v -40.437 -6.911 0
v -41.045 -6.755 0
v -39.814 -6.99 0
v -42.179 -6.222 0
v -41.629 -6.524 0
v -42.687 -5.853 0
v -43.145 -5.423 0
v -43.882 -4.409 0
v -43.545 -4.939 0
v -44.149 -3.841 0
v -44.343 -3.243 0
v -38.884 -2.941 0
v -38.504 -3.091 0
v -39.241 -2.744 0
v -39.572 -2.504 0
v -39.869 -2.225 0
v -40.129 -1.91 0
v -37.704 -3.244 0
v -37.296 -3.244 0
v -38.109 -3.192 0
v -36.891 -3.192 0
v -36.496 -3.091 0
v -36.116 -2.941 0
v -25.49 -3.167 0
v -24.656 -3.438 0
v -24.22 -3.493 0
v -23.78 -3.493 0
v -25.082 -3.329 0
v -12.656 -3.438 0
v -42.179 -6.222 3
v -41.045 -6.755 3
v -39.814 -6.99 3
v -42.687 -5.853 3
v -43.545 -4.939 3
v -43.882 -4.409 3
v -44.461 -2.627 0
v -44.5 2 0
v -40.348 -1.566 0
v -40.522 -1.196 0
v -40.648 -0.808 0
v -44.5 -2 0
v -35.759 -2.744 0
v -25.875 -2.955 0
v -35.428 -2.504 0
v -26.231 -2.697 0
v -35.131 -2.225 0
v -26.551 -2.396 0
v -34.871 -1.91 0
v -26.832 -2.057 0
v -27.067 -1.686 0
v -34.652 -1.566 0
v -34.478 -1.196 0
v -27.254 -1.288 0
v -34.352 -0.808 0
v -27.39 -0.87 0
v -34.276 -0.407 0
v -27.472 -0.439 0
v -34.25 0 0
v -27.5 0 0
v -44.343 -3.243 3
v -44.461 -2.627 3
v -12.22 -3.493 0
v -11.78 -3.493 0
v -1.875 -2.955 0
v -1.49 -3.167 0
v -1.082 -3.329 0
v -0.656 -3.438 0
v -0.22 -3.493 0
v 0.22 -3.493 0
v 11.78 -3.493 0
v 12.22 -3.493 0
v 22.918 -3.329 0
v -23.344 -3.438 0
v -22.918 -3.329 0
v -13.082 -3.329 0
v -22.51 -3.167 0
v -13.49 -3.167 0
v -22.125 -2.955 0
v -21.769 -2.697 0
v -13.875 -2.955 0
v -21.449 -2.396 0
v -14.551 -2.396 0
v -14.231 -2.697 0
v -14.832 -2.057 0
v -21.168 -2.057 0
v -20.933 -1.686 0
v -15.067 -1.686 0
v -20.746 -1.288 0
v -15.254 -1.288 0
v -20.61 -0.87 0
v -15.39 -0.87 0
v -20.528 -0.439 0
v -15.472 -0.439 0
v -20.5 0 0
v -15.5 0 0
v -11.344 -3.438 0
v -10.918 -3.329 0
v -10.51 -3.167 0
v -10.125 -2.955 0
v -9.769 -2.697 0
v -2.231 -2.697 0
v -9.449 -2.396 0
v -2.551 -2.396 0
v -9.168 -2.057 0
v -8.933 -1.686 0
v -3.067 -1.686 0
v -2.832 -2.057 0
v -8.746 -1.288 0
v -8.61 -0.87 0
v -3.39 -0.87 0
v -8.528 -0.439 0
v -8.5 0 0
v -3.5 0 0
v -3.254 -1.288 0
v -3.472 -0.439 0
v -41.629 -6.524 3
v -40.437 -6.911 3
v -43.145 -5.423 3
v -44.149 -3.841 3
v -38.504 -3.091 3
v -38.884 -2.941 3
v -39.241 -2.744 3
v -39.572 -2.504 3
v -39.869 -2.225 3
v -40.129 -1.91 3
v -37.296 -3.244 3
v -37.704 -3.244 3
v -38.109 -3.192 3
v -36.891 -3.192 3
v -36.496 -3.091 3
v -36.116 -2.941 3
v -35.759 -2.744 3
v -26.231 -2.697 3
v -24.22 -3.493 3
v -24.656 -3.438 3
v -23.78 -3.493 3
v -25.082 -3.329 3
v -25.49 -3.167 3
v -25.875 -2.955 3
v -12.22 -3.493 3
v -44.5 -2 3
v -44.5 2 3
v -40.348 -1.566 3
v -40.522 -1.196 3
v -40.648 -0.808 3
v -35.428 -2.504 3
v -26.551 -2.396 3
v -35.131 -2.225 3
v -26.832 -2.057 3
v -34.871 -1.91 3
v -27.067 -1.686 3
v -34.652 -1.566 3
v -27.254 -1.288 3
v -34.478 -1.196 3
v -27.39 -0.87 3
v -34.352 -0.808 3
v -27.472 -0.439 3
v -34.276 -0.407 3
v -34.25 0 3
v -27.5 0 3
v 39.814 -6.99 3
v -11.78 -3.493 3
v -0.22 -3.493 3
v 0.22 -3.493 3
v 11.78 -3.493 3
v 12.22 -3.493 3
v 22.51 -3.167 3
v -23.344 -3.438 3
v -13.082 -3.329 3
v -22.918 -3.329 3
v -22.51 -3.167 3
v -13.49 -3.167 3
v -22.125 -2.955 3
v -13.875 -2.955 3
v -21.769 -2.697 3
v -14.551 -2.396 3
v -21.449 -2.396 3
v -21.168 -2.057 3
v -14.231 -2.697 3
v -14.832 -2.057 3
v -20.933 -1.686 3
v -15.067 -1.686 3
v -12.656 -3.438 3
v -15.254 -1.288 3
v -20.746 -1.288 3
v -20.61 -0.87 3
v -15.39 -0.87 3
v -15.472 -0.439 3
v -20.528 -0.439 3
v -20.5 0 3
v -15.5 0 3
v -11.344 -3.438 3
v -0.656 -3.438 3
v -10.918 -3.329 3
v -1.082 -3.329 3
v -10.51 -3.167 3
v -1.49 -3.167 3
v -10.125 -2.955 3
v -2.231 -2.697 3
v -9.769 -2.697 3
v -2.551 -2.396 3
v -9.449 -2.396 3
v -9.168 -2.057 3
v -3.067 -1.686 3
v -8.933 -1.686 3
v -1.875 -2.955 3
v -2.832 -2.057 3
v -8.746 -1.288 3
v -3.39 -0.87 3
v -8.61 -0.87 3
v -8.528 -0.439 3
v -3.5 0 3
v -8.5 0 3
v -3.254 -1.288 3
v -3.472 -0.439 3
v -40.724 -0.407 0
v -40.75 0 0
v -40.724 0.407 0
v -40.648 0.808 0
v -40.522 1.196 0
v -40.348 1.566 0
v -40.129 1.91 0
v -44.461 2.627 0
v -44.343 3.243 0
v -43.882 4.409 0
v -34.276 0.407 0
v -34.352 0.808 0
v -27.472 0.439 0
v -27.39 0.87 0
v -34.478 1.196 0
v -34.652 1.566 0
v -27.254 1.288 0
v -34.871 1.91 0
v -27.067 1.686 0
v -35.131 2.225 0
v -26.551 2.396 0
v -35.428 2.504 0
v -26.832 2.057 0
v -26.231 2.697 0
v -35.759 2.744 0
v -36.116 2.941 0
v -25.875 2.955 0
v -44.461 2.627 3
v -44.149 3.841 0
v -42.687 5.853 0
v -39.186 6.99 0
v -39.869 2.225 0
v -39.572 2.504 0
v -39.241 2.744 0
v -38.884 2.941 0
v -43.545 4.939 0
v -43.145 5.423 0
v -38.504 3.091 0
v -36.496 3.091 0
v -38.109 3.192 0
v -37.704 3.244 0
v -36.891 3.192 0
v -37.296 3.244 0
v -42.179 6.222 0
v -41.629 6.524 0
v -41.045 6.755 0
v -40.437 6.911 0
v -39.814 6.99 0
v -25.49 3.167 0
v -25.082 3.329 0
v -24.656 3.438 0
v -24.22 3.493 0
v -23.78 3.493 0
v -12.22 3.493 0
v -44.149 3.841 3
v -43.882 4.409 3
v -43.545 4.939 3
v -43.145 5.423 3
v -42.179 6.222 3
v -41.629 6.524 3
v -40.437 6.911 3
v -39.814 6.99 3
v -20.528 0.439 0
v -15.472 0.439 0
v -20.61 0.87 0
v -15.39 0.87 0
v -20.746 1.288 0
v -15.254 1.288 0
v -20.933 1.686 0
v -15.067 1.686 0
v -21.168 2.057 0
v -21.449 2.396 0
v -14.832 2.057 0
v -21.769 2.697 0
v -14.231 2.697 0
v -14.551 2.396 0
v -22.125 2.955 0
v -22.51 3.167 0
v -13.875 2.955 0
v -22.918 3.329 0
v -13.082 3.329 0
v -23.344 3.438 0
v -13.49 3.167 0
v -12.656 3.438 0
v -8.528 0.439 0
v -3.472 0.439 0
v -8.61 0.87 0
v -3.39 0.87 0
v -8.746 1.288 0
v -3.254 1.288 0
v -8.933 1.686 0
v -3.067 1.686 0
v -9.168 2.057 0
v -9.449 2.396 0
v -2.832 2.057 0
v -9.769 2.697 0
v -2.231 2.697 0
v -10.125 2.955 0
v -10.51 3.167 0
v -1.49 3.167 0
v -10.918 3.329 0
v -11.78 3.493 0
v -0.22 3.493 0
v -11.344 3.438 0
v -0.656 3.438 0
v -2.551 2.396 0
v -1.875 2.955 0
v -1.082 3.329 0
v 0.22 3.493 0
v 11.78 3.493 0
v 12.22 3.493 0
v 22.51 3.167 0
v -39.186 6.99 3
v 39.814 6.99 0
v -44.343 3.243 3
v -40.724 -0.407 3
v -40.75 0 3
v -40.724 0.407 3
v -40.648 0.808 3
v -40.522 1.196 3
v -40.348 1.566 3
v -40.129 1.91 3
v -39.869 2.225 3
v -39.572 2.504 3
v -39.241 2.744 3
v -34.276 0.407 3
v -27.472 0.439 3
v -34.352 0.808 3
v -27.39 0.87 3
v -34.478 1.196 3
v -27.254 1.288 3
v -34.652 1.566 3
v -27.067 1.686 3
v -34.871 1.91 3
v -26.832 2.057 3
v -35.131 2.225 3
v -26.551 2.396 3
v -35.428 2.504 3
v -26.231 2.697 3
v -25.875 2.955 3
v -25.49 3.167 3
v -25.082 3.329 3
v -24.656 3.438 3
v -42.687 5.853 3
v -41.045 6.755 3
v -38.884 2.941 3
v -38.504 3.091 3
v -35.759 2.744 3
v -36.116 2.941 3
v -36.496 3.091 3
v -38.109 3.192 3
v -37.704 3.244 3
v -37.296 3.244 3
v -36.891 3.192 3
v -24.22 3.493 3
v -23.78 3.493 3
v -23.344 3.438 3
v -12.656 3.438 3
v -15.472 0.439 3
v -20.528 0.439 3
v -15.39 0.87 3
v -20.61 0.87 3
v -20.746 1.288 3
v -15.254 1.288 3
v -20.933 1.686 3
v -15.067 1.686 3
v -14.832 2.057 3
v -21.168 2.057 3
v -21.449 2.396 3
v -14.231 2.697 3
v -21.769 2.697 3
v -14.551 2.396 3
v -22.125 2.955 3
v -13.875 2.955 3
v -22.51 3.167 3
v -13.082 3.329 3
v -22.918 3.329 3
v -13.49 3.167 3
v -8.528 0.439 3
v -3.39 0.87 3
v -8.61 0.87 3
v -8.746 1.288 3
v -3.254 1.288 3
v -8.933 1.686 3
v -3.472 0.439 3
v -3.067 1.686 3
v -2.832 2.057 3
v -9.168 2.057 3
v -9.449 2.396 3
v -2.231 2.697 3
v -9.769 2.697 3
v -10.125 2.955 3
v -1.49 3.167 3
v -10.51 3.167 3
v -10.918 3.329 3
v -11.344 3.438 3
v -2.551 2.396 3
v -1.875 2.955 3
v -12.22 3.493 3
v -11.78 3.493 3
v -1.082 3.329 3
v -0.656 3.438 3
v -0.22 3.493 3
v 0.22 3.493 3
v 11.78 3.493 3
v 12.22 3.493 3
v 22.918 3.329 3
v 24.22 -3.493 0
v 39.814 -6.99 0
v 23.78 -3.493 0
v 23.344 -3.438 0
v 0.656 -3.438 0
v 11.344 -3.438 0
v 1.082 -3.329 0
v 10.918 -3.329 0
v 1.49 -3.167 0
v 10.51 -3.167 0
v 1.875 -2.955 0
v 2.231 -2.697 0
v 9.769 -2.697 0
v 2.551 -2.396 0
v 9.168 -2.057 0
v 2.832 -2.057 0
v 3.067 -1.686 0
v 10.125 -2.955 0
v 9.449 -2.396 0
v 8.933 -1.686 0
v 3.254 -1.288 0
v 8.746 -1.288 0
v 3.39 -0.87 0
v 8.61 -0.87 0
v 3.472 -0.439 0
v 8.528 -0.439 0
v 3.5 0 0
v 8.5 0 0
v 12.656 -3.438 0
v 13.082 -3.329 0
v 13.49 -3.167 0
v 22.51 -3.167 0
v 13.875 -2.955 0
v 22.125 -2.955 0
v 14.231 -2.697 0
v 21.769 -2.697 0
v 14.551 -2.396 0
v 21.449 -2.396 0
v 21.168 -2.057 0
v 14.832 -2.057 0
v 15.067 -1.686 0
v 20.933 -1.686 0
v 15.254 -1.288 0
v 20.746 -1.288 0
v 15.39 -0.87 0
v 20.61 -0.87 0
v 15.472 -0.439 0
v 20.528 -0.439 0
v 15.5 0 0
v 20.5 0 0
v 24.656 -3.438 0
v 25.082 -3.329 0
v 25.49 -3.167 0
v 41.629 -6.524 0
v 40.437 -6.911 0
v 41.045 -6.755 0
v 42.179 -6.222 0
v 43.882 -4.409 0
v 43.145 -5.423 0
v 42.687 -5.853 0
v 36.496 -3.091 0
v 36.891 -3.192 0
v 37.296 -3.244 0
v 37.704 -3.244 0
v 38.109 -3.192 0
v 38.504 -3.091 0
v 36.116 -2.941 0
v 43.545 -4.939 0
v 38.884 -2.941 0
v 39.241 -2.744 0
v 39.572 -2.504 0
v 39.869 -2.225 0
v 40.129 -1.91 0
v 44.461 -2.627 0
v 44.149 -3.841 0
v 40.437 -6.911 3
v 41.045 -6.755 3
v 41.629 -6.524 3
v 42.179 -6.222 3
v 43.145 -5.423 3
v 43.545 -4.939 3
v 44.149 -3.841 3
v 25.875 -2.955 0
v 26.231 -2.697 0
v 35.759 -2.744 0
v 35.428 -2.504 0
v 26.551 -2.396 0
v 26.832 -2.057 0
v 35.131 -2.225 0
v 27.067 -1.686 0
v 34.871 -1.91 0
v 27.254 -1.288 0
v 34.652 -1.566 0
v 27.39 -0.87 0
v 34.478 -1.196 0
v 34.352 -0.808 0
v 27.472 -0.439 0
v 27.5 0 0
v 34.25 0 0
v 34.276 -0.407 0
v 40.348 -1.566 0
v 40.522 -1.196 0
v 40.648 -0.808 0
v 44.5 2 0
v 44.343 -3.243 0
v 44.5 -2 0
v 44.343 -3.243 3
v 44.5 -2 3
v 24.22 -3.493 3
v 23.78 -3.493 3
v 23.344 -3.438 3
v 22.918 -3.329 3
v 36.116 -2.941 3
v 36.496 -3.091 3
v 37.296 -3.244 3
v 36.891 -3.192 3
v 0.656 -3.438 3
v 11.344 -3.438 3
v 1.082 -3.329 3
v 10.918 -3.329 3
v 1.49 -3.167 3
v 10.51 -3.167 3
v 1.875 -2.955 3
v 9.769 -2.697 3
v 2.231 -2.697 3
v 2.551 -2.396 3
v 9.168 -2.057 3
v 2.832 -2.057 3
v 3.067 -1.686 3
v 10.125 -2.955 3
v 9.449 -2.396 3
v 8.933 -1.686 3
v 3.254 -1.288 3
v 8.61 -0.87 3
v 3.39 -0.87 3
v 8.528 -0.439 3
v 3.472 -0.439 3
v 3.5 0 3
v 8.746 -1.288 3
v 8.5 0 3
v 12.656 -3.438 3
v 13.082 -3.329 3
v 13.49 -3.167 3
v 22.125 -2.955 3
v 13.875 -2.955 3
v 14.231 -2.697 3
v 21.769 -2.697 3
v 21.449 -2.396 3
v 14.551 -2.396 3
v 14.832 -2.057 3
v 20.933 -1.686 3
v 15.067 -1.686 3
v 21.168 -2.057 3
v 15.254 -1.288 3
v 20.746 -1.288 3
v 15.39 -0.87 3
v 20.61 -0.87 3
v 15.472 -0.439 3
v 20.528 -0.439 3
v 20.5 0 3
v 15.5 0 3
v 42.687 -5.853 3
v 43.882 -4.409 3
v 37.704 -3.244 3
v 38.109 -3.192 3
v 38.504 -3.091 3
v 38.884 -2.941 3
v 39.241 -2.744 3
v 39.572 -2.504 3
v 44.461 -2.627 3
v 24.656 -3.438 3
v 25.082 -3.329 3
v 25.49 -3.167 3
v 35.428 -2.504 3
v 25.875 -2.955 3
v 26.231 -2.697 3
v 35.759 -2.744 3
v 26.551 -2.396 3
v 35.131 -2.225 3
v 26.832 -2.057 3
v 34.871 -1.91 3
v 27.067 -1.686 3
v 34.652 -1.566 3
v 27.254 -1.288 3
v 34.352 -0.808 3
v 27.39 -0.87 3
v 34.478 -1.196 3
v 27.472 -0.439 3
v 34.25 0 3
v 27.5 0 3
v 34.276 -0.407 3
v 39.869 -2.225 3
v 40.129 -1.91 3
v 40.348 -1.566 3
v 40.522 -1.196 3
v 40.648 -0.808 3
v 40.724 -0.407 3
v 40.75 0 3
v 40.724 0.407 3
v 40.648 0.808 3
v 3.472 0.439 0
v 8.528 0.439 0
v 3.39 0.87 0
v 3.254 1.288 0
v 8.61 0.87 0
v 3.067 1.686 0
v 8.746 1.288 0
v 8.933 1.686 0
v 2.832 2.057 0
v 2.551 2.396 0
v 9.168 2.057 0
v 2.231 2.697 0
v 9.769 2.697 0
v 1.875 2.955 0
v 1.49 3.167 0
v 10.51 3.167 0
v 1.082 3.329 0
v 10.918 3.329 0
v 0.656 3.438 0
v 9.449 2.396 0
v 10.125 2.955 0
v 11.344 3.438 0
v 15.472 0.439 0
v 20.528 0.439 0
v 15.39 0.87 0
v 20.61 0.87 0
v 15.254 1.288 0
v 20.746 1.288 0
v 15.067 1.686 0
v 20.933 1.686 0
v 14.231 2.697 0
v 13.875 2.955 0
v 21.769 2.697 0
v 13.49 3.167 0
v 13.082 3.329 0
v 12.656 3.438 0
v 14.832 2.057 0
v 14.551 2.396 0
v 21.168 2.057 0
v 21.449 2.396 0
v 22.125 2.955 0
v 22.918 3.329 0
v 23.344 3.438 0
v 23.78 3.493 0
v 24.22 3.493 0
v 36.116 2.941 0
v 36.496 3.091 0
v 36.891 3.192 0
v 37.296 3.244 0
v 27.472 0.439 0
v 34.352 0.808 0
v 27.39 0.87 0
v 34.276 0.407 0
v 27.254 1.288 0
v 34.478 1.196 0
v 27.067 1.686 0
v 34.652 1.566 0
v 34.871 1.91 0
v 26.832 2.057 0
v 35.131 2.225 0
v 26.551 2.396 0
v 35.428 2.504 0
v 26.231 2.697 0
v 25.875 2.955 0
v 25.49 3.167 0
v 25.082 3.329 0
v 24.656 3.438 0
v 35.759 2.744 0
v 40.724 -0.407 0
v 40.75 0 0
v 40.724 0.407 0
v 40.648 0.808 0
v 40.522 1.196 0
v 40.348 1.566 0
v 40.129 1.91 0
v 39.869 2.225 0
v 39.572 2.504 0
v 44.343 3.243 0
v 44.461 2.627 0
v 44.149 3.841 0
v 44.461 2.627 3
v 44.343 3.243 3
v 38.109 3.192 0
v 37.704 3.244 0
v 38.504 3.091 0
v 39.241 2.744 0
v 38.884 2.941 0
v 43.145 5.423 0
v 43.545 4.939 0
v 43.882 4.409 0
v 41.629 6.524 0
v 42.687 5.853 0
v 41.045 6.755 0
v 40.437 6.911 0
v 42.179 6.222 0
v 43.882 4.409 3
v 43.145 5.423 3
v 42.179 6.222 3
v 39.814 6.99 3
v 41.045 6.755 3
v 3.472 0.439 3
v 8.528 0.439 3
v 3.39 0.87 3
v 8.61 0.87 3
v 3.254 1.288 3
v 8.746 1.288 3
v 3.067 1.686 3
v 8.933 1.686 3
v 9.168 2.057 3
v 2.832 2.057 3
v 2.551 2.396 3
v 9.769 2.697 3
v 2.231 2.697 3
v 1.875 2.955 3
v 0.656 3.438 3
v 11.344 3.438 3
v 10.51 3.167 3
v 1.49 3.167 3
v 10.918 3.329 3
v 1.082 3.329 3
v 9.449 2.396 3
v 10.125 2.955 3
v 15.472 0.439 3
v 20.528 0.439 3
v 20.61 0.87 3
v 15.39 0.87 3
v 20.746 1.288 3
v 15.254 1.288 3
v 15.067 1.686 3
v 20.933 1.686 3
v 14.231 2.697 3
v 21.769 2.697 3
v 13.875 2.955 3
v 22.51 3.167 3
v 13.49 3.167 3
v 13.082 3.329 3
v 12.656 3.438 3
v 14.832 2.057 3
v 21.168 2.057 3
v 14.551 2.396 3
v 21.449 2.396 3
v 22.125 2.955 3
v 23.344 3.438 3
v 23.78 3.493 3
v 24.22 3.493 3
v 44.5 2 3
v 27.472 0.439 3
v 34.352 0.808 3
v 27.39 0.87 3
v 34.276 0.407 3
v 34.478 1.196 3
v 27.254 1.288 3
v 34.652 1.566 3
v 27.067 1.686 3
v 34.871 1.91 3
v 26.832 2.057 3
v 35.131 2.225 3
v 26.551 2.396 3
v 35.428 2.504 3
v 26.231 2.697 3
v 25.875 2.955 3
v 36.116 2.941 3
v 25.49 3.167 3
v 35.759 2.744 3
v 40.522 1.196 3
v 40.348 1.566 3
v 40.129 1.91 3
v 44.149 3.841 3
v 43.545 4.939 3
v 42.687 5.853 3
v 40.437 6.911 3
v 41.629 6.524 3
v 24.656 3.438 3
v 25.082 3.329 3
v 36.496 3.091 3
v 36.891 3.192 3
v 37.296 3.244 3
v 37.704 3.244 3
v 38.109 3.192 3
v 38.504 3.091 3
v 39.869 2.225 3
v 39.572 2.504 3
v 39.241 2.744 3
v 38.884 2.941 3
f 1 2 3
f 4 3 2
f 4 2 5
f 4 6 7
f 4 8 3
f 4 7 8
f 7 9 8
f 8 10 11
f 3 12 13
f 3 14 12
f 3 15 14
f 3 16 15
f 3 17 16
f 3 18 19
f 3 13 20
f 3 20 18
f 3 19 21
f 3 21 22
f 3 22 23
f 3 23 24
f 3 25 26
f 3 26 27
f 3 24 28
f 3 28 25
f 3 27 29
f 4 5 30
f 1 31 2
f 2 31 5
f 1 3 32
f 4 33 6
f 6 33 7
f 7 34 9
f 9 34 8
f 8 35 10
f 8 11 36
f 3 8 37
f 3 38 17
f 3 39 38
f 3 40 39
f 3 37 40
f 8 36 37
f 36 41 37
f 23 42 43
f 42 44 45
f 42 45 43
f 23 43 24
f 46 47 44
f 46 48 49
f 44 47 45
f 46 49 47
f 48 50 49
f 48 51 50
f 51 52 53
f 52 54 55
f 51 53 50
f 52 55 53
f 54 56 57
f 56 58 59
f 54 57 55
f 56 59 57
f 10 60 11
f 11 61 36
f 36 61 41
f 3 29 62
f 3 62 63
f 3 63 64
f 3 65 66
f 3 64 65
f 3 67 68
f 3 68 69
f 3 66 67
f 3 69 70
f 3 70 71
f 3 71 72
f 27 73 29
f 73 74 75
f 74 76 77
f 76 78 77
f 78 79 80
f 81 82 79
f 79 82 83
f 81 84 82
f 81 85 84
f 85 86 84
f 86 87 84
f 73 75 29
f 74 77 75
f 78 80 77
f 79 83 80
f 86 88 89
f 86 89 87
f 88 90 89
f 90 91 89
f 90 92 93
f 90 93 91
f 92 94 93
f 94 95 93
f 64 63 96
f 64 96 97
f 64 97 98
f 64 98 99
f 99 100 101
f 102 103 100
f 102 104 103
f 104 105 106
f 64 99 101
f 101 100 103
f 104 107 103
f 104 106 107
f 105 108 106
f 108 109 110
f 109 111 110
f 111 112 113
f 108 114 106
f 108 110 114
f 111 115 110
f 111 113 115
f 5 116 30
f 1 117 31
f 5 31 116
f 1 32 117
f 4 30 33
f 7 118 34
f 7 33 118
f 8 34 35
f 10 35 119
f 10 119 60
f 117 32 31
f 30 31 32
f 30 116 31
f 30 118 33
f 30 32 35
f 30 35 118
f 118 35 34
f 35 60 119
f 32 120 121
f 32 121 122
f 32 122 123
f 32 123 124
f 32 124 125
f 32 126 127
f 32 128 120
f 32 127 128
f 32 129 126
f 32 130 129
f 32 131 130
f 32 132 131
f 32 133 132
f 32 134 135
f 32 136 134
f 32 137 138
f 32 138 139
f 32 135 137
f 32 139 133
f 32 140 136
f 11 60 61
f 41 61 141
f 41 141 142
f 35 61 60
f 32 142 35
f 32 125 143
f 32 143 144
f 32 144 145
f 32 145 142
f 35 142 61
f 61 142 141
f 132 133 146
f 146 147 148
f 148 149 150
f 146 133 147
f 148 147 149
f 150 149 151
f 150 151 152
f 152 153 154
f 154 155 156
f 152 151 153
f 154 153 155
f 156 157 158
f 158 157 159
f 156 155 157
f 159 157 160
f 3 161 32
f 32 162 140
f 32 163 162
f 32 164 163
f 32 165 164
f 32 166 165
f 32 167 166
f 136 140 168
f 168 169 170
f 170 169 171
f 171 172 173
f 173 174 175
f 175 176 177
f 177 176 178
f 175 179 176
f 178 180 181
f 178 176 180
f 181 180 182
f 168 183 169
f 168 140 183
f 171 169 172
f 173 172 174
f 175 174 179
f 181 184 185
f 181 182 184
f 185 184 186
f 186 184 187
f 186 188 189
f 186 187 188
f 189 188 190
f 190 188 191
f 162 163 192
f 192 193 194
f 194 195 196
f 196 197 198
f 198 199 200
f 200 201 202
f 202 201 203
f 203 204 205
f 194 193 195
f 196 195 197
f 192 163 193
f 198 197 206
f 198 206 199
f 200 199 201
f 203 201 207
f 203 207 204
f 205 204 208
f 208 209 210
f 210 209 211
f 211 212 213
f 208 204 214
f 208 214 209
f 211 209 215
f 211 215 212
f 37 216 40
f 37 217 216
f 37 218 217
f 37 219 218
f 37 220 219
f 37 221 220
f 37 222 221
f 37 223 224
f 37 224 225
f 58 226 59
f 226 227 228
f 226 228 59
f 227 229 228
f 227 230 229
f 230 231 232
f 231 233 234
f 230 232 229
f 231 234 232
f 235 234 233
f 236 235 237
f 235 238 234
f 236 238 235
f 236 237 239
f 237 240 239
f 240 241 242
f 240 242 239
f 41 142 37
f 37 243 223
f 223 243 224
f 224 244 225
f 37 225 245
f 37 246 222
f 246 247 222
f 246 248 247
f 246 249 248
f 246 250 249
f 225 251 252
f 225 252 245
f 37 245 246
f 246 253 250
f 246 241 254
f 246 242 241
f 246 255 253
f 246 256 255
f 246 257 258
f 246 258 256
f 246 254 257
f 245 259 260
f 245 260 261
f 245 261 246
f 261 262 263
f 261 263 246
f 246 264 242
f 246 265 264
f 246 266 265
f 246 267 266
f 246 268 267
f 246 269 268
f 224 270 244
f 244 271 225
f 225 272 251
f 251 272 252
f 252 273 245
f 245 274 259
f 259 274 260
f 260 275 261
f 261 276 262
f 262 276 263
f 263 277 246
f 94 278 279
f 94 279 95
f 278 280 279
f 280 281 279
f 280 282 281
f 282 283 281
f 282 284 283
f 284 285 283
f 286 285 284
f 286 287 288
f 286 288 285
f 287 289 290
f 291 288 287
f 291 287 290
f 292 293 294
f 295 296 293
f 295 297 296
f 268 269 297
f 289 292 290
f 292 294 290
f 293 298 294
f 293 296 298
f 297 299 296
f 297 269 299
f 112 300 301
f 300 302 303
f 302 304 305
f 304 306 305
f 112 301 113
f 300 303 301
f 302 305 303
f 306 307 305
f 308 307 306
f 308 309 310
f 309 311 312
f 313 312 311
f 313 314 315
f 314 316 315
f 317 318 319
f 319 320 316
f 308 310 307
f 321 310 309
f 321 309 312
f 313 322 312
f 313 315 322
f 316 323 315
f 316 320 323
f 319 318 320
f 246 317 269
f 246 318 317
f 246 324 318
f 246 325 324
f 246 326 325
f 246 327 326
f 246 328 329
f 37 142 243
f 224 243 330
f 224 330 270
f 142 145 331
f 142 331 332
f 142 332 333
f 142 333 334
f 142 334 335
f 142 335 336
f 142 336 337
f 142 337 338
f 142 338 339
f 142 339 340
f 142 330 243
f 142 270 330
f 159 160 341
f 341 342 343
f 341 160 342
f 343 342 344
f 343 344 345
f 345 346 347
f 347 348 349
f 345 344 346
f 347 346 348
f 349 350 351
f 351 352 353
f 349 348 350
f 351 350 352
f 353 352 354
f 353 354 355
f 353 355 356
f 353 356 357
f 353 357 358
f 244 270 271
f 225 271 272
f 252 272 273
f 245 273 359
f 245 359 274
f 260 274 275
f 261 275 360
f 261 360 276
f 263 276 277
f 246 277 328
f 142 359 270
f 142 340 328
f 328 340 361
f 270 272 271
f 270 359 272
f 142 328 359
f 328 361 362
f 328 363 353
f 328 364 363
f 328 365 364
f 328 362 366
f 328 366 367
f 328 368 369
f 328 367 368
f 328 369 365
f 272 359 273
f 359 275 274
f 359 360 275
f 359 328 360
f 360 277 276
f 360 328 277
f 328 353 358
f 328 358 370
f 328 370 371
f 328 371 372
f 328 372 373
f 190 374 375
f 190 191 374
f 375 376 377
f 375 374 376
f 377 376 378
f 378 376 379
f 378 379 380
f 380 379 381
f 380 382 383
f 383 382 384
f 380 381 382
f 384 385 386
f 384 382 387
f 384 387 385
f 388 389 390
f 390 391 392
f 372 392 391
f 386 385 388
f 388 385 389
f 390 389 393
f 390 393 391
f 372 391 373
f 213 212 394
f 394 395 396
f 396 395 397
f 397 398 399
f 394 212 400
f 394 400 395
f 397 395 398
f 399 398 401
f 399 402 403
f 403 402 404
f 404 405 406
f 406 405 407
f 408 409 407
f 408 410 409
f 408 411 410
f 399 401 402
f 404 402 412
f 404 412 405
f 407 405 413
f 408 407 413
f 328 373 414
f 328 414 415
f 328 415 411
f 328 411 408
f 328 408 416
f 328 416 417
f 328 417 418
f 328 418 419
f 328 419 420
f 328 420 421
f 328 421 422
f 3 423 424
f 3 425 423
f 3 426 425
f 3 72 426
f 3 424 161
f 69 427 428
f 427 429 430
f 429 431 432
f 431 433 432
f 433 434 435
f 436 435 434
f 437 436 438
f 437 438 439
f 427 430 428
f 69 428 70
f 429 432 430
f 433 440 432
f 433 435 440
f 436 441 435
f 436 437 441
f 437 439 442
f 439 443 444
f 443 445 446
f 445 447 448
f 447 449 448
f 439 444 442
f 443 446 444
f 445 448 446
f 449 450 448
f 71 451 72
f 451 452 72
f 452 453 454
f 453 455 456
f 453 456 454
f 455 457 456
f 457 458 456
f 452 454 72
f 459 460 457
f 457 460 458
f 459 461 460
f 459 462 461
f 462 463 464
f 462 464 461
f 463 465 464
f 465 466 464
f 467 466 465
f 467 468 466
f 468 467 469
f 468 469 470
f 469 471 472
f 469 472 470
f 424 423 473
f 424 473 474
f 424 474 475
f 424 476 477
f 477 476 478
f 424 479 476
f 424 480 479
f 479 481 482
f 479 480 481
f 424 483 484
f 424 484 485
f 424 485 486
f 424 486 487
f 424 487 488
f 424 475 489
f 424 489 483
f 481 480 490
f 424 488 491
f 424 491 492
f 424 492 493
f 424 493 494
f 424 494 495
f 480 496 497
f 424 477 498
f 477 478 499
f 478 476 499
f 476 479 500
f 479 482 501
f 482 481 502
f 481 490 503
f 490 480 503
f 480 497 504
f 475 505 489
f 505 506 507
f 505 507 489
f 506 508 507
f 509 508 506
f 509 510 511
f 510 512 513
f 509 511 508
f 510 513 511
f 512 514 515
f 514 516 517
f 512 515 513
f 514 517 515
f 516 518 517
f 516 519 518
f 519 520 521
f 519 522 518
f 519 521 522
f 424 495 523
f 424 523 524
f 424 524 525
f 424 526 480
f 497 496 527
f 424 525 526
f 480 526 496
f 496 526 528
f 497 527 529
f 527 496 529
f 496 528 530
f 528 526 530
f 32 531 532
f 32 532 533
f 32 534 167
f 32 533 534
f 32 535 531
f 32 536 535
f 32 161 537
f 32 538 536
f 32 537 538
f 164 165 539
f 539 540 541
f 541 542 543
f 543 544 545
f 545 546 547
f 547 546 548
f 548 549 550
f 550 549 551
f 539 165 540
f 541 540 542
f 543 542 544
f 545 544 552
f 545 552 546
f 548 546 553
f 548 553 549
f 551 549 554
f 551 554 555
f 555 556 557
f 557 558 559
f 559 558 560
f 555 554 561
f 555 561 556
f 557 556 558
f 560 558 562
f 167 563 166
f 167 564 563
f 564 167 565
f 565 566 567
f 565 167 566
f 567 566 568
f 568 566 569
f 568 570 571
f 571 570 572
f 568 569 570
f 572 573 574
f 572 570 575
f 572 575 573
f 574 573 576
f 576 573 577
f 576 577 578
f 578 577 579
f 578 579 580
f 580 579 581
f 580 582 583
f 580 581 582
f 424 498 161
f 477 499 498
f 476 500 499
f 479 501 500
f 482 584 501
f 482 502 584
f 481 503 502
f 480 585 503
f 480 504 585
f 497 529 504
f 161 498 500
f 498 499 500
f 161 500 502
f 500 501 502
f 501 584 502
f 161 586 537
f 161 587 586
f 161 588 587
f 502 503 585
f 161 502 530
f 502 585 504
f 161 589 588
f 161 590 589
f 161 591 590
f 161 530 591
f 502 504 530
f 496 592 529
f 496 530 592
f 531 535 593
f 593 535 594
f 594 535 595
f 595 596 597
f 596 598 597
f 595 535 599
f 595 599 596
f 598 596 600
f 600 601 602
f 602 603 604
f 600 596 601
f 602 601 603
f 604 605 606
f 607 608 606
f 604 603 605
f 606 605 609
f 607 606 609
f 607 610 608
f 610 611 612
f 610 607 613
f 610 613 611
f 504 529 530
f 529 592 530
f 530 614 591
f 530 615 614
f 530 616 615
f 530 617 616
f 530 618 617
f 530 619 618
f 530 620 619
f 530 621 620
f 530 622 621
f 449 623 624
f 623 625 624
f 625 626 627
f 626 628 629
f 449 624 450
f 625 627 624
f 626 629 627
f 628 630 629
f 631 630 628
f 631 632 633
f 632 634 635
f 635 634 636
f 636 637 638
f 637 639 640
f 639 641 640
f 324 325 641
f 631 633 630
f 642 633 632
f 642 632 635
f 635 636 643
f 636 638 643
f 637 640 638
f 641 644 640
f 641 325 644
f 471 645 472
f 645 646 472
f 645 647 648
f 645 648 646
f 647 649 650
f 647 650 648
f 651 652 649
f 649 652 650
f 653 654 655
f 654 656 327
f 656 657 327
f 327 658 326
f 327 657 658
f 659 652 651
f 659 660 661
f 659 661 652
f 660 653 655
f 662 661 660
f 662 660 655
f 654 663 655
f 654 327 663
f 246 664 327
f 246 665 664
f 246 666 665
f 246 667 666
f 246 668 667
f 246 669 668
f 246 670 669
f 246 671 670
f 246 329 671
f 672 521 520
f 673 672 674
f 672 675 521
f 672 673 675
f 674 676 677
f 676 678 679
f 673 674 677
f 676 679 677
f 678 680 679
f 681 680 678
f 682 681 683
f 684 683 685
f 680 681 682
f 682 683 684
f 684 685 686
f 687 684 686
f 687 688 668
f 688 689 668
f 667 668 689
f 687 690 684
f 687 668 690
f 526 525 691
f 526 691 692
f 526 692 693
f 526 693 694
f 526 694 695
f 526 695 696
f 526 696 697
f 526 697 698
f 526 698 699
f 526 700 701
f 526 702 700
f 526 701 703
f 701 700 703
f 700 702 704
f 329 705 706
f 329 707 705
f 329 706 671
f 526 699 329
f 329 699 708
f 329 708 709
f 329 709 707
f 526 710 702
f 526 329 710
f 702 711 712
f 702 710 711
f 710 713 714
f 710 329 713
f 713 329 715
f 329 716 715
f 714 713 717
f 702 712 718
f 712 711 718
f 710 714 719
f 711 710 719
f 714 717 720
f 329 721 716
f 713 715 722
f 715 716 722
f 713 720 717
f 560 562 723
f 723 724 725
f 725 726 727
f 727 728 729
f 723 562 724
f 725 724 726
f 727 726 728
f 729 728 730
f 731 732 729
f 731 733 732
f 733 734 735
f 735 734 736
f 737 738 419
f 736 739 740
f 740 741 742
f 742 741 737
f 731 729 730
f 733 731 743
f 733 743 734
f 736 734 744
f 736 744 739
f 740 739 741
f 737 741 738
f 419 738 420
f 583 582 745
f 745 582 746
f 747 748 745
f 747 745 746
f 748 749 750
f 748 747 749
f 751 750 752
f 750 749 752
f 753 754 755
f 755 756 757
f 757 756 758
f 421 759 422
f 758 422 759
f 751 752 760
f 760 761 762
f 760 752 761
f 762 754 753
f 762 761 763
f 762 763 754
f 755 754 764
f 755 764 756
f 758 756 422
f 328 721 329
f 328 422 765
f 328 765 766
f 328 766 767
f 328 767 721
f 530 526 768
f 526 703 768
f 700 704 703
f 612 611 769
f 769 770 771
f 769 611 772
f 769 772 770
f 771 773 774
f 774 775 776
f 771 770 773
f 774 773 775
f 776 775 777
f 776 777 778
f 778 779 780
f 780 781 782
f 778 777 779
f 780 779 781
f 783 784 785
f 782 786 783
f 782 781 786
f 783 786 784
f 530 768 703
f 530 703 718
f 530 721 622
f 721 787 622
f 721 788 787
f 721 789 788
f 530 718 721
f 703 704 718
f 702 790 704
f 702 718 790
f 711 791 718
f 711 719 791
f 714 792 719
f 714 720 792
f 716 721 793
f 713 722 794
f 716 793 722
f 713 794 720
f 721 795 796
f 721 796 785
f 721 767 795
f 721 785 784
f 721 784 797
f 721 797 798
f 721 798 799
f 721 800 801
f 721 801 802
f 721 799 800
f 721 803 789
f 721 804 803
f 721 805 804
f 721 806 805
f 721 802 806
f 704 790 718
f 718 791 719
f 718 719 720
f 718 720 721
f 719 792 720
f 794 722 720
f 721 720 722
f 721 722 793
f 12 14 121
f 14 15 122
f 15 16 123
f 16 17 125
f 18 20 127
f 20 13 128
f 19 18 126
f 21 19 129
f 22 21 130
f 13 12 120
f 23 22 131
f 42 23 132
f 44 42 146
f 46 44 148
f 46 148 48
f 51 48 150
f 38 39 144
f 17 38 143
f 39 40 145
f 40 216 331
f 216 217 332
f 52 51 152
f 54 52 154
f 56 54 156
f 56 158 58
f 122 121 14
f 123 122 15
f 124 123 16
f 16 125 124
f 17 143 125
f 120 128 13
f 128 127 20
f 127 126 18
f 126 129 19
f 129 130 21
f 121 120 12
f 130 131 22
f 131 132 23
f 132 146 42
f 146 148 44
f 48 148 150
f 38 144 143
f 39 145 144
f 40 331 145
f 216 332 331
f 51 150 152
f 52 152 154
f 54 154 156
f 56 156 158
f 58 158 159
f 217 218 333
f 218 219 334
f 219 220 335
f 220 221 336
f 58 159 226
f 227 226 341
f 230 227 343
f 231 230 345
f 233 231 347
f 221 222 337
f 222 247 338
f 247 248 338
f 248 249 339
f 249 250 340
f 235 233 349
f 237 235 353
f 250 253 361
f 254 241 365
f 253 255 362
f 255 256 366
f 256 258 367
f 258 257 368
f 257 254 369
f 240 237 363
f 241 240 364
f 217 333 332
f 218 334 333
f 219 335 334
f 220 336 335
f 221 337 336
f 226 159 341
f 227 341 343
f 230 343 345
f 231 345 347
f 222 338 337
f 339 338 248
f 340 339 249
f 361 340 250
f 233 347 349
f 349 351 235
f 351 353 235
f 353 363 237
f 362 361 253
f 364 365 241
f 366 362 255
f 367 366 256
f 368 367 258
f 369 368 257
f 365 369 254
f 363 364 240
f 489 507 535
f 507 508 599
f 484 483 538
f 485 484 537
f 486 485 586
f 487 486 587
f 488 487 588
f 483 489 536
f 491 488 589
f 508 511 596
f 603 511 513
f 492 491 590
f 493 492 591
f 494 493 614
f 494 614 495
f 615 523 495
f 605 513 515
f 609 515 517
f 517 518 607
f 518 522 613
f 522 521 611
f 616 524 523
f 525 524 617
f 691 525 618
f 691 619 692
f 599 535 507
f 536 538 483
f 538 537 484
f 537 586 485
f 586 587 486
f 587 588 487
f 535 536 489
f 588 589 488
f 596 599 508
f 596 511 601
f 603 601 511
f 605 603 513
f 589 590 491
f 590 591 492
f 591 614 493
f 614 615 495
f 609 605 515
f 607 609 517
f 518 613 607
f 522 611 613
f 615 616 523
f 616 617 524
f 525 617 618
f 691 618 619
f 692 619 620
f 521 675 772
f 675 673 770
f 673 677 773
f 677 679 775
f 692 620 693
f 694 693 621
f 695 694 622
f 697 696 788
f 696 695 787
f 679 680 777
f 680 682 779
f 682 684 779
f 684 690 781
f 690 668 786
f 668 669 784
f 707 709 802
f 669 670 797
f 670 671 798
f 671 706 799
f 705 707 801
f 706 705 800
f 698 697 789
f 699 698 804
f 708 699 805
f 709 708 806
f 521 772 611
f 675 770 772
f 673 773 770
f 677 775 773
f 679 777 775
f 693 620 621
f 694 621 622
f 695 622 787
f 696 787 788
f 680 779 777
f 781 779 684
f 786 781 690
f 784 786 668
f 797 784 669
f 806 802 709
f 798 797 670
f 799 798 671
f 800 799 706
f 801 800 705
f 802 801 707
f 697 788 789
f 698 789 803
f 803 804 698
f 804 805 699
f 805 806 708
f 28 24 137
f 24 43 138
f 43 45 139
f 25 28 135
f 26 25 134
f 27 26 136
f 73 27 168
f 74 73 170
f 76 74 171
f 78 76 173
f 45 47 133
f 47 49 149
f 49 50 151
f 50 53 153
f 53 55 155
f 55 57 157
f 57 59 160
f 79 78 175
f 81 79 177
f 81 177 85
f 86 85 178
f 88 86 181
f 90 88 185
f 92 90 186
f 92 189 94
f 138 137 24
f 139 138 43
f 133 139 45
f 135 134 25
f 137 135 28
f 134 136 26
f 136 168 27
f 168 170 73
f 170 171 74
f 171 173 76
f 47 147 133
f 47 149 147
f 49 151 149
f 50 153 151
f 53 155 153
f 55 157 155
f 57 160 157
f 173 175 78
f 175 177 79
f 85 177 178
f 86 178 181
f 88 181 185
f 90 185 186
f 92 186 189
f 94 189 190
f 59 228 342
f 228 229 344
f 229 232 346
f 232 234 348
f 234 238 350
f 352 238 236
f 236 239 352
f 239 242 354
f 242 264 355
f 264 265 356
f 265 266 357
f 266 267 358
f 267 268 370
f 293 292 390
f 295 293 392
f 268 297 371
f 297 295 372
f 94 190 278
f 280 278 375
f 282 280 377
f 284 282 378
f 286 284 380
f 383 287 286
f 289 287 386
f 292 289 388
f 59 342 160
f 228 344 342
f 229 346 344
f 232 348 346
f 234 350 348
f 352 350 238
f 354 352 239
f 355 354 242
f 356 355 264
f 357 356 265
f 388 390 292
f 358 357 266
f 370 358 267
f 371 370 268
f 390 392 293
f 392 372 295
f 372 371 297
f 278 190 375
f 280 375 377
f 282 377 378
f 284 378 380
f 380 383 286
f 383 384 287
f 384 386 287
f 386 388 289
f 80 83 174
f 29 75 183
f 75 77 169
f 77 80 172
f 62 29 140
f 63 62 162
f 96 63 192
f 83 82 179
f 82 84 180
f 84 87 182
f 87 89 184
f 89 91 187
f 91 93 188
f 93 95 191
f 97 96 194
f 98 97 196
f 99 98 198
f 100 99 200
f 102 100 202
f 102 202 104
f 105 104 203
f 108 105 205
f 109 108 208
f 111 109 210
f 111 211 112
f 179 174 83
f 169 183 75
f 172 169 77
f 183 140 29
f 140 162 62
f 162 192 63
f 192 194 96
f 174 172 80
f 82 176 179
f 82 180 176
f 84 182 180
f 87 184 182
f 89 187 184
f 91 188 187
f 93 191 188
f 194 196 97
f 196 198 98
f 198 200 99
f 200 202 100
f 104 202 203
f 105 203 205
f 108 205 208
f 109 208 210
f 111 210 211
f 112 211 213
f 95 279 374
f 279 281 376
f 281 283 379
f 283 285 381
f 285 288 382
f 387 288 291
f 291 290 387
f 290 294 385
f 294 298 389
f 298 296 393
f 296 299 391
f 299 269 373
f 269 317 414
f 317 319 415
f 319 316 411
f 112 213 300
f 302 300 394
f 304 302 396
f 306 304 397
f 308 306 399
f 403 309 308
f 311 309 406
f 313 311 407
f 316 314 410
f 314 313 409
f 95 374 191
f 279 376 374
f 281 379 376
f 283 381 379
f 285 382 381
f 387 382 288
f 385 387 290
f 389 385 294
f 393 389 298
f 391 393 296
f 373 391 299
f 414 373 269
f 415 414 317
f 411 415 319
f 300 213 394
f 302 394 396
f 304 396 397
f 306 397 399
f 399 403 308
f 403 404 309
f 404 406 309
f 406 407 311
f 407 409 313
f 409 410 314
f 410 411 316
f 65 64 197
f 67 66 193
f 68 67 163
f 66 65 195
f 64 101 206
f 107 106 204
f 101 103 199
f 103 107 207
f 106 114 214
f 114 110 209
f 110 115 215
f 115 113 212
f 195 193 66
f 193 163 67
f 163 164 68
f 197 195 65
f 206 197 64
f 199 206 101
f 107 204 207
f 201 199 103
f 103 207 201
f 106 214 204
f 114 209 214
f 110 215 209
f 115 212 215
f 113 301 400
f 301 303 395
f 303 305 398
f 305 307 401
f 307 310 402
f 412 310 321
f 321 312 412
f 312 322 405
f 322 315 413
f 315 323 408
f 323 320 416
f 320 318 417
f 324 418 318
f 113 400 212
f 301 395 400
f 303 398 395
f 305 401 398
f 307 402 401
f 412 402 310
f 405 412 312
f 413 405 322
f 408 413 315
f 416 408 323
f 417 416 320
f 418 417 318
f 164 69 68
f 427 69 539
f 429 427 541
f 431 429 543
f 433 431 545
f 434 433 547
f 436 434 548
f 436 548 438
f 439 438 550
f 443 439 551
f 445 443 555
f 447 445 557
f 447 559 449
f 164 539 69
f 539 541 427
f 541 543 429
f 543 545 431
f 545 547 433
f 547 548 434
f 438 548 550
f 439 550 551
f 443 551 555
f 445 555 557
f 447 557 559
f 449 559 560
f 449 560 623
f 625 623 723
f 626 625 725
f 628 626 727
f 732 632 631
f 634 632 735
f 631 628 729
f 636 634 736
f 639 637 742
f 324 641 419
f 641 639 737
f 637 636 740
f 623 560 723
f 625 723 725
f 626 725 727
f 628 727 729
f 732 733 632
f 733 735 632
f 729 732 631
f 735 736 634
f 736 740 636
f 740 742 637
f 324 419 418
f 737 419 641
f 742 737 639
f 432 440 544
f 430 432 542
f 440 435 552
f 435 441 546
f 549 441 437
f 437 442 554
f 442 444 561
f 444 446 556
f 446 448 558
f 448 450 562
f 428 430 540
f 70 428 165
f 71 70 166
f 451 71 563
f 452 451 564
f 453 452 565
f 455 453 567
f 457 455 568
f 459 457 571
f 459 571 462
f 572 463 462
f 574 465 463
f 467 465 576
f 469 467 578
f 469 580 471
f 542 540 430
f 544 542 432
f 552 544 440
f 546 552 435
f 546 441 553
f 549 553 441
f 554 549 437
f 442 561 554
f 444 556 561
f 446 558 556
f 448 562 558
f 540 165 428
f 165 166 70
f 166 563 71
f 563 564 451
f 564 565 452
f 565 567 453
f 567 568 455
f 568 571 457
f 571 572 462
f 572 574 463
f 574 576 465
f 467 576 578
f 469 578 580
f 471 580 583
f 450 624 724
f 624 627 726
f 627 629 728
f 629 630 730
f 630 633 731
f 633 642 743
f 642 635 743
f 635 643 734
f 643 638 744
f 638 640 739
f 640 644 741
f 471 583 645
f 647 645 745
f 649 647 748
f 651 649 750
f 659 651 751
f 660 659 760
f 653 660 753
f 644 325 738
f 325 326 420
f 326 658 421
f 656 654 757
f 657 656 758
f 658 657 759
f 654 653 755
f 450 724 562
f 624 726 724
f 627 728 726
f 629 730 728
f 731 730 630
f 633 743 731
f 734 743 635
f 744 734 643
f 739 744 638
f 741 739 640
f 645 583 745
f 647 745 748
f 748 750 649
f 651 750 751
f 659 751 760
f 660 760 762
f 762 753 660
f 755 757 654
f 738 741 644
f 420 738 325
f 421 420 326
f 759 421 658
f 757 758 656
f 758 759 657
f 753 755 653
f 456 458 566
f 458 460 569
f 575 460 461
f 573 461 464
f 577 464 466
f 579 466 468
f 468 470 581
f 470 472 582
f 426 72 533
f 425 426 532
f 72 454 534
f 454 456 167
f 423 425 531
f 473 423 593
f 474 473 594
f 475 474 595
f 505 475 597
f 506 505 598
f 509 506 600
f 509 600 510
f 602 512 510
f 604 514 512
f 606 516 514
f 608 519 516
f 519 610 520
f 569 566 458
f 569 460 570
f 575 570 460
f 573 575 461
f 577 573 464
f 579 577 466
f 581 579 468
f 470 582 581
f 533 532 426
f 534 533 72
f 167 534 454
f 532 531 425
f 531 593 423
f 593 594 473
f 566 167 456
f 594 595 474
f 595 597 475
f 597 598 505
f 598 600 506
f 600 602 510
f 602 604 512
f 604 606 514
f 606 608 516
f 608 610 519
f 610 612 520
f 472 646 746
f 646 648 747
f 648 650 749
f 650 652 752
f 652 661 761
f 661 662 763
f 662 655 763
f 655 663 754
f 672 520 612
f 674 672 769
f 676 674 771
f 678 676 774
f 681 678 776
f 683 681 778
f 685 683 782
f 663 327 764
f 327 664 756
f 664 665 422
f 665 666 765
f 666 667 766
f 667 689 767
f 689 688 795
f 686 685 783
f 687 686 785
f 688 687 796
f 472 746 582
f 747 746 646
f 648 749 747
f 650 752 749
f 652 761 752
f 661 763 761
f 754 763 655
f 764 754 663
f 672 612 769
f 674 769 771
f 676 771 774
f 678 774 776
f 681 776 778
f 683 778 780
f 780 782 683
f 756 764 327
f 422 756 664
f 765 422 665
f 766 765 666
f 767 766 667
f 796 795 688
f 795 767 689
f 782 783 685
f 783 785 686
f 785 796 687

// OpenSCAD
$fn = 50;

difference() {
	union() {
		hull() {
			translate(v = [-39.5, 2.0, 0]) {
				cylinder(h = 3, r = 5);
			}
			translate(v = [39.5, 2.0, 0]) {
				cylinder(h = 3, r = 5);
			}
			translate(v = [-39.5, -2.0, 0]) {
				cylinder(h = 3, r = 5);
			}
			translate(v = [39.5, -2.0, 0]) {
				cylinder(h = 3, r = 5);
			}
		}
	}
	union() {
		translate(v = [-37.5, 0.0, 0]) {
			cylinder(h = 3, r = 3.25);
		}
		translate(v = [37.5, 0.0, 0]) {
			cylinder(h = 3, r = 3.25);
		}
		translate(v = [-24.0, 0, 0.0]) {
			cylinder(h = 3, r = 3.5);
		}
		translate(v = [-12.0, 0, 0.0]) {
			cylinder(h = 3, r = 3.5);
		}
		cylinder(h = 3, r = 3.5);
		translate(v = [12.0, 0, 0.0]) {
			cylinder(h = 3, r = 3.5);
		}
		translate(v = [24.0, 0, 0.0]) {
			cylinder(h = 3, r = 3.5);
		}
	}
}
